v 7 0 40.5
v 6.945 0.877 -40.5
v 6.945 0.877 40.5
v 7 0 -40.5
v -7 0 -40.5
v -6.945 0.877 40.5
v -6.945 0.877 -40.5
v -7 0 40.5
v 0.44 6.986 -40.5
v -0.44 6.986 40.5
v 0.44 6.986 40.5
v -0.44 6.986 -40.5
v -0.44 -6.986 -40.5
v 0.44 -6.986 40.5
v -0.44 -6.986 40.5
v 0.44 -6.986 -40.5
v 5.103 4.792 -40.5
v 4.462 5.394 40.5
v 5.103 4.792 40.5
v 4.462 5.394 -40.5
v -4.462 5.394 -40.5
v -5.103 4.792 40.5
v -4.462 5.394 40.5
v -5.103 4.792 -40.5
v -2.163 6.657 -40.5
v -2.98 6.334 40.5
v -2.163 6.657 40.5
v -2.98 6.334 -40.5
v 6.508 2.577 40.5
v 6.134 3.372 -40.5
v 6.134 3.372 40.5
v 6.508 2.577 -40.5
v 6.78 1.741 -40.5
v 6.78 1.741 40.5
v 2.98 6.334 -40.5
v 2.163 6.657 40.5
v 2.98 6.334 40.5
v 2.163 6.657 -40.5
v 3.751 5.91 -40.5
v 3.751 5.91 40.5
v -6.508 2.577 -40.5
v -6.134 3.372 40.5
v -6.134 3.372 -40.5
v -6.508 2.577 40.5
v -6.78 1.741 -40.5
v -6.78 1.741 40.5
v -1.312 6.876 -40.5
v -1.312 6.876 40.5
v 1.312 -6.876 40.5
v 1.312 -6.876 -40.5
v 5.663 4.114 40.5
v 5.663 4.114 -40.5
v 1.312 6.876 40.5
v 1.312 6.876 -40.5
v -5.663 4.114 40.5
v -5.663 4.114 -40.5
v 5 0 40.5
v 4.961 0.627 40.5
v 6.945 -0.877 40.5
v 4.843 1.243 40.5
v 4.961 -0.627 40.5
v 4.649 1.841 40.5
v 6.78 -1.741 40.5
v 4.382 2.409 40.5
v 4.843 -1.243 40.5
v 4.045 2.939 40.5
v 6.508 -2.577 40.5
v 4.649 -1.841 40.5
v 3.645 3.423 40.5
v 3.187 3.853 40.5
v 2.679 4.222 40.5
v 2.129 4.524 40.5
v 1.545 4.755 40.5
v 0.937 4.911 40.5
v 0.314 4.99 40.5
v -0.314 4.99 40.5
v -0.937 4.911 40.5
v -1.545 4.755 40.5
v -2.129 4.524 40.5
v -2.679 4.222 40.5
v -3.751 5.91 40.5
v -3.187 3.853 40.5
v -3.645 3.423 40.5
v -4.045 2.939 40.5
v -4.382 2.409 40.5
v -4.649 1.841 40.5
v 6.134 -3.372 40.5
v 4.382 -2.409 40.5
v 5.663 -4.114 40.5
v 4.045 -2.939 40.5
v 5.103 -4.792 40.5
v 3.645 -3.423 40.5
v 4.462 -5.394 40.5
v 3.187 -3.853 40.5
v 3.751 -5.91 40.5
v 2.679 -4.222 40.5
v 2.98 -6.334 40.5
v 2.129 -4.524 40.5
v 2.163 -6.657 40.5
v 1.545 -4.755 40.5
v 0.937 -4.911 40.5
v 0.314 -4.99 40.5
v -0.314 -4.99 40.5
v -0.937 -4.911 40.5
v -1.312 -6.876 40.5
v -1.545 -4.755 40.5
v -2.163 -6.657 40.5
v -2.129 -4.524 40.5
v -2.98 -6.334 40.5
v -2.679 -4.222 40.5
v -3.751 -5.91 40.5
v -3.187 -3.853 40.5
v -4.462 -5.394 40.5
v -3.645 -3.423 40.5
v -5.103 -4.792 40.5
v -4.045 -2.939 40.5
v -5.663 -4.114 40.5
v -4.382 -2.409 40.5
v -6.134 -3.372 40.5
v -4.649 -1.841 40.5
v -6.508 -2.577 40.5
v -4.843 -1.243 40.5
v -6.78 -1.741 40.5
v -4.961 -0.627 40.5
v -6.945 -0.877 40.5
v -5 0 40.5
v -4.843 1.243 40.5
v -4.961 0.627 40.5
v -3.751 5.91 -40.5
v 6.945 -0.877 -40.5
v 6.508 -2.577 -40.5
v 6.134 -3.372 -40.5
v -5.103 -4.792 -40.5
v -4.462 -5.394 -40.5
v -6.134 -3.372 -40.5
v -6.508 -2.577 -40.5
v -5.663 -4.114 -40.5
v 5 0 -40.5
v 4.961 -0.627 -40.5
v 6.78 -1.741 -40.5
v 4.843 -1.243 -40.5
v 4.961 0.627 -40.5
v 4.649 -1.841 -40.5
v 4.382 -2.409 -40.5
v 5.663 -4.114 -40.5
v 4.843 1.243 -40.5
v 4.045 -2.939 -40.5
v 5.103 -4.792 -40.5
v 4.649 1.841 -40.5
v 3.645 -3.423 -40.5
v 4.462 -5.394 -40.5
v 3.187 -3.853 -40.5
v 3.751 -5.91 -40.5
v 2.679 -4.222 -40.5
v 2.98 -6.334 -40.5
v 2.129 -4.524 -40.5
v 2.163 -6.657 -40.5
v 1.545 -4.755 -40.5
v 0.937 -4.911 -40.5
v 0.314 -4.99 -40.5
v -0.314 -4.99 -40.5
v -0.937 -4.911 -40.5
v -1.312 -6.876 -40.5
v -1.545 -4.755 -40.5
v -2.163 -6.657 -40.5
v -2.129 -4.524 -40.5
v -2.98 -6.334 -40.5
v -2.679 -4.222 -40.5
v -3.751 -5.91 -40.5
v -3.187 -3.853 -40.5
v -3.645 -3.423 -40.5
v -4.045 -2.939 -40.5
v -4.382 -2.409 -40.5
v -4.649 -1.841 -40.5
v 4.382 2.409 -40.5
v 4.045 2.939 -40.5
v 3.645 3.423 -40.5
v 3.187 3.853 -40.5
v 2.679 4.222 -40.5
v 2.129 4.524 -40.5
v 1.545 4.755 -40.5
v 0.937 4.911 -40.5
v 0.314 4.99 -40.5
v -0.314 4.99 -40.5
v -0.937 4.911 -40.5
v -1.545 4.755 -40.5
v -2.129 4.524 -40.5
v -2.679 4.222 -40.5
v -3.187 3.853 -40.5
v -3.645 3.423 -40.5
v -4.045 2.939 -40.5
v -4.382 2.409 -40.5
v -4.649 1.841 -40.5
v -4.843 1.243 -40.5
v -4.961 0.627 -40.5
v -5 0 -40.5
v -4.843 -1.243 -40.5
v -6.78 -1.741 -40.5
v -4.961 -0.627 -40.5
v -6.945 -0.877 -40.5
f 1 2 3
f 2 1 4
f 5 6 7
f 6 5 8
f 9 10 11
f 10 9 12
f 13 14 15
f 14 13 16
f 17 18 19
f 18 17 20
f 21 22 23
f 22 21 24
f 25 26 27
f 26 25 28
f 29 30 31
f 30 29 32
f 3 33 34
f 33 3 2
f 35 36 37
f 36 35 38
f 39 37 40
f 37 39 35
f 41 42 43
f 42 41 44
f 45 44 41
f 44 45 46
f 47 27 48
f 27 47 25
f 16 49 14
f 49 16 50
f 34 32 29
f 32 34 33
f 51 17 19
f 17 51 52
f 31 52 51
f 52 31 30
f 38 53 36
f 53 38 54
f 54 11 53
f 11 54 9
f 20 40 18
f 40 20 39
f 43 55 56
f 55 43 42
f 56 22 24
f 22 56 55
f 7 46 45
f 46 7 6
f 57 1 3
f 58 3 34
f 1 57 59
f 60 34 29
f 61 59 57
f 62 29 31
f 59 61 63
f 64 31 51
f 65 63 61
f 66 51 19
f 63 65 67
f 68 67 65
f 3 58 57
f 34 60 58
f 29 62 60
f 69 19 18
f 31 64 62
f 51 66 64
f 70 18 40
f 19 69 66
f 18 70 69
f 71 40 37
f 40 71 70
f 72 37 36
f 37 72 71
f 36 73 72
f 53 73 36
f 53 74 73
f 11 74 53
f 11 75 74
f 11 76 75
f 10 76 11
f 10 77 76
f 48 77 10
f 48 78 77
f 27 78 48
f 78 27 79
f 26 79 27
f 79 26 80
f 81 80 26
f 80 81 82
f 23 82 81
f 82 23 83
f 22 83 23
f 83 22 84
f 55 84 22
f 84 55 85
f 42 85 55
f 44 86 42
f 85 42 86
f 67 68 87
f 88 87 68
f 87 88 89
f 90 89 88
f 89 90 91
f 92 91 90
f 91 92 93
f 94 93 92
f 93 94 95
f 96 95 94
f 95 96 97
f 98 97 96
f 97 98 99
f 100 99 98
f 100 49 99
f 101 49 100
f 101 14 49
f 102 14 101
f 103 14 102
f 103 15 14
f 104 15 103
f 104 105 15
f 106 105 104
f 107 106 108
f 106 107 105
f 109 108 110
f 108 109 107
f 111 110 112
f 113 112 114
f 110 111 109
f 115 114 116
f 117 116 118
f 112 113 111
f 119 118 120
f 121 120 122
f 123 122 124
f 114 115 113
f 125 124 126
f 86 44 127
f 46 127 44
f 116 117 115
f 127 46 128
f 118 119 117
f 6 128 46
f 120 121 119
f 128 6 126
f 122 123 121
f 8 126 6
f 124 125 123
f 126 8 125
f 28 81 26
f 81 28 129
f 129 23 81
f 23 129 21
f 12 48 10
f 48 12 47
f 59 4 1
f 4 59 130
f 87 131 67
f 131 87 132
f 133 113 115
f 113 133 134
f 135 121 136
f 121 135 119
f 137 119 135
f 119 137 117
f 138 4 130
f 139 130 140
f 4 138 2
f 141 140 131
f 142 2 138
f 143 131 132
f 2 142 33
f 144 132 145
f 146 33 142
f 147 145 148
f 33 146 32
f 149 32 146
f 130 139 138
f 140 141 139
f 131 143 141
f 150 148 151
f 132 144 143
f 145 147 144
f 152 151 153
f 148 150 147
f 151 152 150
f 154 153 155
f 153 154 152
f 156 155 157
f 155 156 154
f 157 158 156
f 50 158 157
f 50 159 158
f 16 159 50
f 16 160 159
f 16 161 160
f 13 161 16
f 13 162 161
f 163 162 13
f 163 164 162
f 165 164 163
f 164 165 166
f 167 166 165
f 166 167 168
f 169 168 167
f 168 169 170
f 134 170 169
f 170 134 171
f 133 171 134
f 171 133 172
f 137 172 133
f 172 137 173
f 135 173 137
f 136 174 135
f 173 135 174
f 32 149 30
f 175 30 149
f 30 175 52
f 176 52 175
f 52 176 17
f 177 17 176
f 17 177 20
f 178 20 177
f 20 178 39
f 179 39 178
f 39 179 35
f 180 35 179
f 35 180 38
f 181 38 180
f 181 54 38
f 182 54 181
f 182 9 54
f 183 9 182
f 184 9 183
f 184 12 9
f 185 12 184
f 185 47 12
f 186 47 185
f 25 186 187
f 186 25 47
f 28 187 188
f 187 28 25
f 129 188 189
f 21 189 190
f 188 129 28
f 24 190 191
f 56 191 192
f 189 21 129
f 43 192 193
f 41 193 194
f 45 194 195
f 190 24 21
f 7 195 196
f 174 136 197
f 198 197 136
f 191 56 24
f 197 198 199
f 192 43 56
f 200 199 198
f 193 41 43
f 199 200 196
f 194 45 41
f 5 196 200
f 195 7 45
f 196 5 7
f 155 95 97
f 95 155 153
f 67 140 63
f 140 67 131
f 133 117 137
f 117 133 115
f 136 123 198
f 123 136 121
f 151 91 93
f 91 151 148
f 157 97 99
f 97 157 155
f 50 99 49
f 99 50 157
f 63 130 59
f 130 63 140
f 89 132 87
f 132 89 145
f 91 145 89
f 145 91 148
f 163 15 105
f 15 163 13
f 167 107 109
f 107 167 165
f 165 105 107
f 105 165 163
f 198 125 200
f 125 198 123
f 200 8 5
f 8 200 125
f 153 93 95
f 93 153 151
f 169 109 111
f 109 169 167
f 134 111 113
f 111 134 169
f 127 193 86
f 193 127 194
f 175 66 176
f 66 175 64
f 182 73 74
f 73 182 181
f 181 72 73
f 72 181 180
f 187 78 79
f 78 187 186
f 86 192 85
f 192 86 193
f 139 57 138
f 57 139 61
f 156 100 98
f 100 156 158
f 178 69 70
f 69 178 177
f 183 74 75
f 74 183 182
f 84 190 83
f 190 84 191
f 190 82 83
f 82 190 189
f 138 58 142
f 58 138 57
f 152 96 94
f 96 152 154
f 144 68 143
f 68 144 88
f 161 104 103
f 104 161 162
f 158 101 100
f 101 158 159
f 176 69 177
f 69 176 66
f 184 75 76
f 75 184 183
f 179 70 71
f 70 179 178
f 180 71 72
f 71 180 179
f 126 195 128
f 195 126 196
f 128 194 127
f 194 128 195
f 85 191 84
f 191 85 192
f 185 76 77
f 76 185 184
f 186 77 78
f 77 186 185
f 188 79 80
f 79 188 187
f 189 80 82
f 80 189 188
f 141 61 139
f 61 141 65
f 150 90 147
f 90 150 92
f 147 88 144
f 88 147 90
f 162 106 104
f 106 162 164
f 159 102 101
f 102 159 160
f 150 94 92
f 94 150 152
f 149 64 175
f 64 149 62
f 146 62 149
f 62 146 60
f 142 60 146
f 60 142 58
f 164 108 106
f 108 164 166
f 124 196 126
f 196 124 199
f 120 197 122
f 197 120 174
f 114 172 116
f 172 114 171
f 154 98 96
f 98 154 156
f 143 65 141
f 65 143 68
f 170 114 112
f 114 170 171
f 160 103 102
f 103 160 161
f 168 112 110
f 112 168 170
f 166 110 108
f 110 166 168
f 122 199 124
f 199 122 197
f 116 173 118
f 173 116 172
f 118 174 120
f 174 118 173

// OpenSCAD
$fn = 50;


difference() {
	union() {
		translate(v = [0, 0, -40.5000000000]) {
			cylinder(h = 81, r = 7.0000000000);
		}
	}
	union() {
		translate(v = [0, 0, -100.0000000000]) {
			cylinder(h = 200, r = 5);
		}
	}
}
